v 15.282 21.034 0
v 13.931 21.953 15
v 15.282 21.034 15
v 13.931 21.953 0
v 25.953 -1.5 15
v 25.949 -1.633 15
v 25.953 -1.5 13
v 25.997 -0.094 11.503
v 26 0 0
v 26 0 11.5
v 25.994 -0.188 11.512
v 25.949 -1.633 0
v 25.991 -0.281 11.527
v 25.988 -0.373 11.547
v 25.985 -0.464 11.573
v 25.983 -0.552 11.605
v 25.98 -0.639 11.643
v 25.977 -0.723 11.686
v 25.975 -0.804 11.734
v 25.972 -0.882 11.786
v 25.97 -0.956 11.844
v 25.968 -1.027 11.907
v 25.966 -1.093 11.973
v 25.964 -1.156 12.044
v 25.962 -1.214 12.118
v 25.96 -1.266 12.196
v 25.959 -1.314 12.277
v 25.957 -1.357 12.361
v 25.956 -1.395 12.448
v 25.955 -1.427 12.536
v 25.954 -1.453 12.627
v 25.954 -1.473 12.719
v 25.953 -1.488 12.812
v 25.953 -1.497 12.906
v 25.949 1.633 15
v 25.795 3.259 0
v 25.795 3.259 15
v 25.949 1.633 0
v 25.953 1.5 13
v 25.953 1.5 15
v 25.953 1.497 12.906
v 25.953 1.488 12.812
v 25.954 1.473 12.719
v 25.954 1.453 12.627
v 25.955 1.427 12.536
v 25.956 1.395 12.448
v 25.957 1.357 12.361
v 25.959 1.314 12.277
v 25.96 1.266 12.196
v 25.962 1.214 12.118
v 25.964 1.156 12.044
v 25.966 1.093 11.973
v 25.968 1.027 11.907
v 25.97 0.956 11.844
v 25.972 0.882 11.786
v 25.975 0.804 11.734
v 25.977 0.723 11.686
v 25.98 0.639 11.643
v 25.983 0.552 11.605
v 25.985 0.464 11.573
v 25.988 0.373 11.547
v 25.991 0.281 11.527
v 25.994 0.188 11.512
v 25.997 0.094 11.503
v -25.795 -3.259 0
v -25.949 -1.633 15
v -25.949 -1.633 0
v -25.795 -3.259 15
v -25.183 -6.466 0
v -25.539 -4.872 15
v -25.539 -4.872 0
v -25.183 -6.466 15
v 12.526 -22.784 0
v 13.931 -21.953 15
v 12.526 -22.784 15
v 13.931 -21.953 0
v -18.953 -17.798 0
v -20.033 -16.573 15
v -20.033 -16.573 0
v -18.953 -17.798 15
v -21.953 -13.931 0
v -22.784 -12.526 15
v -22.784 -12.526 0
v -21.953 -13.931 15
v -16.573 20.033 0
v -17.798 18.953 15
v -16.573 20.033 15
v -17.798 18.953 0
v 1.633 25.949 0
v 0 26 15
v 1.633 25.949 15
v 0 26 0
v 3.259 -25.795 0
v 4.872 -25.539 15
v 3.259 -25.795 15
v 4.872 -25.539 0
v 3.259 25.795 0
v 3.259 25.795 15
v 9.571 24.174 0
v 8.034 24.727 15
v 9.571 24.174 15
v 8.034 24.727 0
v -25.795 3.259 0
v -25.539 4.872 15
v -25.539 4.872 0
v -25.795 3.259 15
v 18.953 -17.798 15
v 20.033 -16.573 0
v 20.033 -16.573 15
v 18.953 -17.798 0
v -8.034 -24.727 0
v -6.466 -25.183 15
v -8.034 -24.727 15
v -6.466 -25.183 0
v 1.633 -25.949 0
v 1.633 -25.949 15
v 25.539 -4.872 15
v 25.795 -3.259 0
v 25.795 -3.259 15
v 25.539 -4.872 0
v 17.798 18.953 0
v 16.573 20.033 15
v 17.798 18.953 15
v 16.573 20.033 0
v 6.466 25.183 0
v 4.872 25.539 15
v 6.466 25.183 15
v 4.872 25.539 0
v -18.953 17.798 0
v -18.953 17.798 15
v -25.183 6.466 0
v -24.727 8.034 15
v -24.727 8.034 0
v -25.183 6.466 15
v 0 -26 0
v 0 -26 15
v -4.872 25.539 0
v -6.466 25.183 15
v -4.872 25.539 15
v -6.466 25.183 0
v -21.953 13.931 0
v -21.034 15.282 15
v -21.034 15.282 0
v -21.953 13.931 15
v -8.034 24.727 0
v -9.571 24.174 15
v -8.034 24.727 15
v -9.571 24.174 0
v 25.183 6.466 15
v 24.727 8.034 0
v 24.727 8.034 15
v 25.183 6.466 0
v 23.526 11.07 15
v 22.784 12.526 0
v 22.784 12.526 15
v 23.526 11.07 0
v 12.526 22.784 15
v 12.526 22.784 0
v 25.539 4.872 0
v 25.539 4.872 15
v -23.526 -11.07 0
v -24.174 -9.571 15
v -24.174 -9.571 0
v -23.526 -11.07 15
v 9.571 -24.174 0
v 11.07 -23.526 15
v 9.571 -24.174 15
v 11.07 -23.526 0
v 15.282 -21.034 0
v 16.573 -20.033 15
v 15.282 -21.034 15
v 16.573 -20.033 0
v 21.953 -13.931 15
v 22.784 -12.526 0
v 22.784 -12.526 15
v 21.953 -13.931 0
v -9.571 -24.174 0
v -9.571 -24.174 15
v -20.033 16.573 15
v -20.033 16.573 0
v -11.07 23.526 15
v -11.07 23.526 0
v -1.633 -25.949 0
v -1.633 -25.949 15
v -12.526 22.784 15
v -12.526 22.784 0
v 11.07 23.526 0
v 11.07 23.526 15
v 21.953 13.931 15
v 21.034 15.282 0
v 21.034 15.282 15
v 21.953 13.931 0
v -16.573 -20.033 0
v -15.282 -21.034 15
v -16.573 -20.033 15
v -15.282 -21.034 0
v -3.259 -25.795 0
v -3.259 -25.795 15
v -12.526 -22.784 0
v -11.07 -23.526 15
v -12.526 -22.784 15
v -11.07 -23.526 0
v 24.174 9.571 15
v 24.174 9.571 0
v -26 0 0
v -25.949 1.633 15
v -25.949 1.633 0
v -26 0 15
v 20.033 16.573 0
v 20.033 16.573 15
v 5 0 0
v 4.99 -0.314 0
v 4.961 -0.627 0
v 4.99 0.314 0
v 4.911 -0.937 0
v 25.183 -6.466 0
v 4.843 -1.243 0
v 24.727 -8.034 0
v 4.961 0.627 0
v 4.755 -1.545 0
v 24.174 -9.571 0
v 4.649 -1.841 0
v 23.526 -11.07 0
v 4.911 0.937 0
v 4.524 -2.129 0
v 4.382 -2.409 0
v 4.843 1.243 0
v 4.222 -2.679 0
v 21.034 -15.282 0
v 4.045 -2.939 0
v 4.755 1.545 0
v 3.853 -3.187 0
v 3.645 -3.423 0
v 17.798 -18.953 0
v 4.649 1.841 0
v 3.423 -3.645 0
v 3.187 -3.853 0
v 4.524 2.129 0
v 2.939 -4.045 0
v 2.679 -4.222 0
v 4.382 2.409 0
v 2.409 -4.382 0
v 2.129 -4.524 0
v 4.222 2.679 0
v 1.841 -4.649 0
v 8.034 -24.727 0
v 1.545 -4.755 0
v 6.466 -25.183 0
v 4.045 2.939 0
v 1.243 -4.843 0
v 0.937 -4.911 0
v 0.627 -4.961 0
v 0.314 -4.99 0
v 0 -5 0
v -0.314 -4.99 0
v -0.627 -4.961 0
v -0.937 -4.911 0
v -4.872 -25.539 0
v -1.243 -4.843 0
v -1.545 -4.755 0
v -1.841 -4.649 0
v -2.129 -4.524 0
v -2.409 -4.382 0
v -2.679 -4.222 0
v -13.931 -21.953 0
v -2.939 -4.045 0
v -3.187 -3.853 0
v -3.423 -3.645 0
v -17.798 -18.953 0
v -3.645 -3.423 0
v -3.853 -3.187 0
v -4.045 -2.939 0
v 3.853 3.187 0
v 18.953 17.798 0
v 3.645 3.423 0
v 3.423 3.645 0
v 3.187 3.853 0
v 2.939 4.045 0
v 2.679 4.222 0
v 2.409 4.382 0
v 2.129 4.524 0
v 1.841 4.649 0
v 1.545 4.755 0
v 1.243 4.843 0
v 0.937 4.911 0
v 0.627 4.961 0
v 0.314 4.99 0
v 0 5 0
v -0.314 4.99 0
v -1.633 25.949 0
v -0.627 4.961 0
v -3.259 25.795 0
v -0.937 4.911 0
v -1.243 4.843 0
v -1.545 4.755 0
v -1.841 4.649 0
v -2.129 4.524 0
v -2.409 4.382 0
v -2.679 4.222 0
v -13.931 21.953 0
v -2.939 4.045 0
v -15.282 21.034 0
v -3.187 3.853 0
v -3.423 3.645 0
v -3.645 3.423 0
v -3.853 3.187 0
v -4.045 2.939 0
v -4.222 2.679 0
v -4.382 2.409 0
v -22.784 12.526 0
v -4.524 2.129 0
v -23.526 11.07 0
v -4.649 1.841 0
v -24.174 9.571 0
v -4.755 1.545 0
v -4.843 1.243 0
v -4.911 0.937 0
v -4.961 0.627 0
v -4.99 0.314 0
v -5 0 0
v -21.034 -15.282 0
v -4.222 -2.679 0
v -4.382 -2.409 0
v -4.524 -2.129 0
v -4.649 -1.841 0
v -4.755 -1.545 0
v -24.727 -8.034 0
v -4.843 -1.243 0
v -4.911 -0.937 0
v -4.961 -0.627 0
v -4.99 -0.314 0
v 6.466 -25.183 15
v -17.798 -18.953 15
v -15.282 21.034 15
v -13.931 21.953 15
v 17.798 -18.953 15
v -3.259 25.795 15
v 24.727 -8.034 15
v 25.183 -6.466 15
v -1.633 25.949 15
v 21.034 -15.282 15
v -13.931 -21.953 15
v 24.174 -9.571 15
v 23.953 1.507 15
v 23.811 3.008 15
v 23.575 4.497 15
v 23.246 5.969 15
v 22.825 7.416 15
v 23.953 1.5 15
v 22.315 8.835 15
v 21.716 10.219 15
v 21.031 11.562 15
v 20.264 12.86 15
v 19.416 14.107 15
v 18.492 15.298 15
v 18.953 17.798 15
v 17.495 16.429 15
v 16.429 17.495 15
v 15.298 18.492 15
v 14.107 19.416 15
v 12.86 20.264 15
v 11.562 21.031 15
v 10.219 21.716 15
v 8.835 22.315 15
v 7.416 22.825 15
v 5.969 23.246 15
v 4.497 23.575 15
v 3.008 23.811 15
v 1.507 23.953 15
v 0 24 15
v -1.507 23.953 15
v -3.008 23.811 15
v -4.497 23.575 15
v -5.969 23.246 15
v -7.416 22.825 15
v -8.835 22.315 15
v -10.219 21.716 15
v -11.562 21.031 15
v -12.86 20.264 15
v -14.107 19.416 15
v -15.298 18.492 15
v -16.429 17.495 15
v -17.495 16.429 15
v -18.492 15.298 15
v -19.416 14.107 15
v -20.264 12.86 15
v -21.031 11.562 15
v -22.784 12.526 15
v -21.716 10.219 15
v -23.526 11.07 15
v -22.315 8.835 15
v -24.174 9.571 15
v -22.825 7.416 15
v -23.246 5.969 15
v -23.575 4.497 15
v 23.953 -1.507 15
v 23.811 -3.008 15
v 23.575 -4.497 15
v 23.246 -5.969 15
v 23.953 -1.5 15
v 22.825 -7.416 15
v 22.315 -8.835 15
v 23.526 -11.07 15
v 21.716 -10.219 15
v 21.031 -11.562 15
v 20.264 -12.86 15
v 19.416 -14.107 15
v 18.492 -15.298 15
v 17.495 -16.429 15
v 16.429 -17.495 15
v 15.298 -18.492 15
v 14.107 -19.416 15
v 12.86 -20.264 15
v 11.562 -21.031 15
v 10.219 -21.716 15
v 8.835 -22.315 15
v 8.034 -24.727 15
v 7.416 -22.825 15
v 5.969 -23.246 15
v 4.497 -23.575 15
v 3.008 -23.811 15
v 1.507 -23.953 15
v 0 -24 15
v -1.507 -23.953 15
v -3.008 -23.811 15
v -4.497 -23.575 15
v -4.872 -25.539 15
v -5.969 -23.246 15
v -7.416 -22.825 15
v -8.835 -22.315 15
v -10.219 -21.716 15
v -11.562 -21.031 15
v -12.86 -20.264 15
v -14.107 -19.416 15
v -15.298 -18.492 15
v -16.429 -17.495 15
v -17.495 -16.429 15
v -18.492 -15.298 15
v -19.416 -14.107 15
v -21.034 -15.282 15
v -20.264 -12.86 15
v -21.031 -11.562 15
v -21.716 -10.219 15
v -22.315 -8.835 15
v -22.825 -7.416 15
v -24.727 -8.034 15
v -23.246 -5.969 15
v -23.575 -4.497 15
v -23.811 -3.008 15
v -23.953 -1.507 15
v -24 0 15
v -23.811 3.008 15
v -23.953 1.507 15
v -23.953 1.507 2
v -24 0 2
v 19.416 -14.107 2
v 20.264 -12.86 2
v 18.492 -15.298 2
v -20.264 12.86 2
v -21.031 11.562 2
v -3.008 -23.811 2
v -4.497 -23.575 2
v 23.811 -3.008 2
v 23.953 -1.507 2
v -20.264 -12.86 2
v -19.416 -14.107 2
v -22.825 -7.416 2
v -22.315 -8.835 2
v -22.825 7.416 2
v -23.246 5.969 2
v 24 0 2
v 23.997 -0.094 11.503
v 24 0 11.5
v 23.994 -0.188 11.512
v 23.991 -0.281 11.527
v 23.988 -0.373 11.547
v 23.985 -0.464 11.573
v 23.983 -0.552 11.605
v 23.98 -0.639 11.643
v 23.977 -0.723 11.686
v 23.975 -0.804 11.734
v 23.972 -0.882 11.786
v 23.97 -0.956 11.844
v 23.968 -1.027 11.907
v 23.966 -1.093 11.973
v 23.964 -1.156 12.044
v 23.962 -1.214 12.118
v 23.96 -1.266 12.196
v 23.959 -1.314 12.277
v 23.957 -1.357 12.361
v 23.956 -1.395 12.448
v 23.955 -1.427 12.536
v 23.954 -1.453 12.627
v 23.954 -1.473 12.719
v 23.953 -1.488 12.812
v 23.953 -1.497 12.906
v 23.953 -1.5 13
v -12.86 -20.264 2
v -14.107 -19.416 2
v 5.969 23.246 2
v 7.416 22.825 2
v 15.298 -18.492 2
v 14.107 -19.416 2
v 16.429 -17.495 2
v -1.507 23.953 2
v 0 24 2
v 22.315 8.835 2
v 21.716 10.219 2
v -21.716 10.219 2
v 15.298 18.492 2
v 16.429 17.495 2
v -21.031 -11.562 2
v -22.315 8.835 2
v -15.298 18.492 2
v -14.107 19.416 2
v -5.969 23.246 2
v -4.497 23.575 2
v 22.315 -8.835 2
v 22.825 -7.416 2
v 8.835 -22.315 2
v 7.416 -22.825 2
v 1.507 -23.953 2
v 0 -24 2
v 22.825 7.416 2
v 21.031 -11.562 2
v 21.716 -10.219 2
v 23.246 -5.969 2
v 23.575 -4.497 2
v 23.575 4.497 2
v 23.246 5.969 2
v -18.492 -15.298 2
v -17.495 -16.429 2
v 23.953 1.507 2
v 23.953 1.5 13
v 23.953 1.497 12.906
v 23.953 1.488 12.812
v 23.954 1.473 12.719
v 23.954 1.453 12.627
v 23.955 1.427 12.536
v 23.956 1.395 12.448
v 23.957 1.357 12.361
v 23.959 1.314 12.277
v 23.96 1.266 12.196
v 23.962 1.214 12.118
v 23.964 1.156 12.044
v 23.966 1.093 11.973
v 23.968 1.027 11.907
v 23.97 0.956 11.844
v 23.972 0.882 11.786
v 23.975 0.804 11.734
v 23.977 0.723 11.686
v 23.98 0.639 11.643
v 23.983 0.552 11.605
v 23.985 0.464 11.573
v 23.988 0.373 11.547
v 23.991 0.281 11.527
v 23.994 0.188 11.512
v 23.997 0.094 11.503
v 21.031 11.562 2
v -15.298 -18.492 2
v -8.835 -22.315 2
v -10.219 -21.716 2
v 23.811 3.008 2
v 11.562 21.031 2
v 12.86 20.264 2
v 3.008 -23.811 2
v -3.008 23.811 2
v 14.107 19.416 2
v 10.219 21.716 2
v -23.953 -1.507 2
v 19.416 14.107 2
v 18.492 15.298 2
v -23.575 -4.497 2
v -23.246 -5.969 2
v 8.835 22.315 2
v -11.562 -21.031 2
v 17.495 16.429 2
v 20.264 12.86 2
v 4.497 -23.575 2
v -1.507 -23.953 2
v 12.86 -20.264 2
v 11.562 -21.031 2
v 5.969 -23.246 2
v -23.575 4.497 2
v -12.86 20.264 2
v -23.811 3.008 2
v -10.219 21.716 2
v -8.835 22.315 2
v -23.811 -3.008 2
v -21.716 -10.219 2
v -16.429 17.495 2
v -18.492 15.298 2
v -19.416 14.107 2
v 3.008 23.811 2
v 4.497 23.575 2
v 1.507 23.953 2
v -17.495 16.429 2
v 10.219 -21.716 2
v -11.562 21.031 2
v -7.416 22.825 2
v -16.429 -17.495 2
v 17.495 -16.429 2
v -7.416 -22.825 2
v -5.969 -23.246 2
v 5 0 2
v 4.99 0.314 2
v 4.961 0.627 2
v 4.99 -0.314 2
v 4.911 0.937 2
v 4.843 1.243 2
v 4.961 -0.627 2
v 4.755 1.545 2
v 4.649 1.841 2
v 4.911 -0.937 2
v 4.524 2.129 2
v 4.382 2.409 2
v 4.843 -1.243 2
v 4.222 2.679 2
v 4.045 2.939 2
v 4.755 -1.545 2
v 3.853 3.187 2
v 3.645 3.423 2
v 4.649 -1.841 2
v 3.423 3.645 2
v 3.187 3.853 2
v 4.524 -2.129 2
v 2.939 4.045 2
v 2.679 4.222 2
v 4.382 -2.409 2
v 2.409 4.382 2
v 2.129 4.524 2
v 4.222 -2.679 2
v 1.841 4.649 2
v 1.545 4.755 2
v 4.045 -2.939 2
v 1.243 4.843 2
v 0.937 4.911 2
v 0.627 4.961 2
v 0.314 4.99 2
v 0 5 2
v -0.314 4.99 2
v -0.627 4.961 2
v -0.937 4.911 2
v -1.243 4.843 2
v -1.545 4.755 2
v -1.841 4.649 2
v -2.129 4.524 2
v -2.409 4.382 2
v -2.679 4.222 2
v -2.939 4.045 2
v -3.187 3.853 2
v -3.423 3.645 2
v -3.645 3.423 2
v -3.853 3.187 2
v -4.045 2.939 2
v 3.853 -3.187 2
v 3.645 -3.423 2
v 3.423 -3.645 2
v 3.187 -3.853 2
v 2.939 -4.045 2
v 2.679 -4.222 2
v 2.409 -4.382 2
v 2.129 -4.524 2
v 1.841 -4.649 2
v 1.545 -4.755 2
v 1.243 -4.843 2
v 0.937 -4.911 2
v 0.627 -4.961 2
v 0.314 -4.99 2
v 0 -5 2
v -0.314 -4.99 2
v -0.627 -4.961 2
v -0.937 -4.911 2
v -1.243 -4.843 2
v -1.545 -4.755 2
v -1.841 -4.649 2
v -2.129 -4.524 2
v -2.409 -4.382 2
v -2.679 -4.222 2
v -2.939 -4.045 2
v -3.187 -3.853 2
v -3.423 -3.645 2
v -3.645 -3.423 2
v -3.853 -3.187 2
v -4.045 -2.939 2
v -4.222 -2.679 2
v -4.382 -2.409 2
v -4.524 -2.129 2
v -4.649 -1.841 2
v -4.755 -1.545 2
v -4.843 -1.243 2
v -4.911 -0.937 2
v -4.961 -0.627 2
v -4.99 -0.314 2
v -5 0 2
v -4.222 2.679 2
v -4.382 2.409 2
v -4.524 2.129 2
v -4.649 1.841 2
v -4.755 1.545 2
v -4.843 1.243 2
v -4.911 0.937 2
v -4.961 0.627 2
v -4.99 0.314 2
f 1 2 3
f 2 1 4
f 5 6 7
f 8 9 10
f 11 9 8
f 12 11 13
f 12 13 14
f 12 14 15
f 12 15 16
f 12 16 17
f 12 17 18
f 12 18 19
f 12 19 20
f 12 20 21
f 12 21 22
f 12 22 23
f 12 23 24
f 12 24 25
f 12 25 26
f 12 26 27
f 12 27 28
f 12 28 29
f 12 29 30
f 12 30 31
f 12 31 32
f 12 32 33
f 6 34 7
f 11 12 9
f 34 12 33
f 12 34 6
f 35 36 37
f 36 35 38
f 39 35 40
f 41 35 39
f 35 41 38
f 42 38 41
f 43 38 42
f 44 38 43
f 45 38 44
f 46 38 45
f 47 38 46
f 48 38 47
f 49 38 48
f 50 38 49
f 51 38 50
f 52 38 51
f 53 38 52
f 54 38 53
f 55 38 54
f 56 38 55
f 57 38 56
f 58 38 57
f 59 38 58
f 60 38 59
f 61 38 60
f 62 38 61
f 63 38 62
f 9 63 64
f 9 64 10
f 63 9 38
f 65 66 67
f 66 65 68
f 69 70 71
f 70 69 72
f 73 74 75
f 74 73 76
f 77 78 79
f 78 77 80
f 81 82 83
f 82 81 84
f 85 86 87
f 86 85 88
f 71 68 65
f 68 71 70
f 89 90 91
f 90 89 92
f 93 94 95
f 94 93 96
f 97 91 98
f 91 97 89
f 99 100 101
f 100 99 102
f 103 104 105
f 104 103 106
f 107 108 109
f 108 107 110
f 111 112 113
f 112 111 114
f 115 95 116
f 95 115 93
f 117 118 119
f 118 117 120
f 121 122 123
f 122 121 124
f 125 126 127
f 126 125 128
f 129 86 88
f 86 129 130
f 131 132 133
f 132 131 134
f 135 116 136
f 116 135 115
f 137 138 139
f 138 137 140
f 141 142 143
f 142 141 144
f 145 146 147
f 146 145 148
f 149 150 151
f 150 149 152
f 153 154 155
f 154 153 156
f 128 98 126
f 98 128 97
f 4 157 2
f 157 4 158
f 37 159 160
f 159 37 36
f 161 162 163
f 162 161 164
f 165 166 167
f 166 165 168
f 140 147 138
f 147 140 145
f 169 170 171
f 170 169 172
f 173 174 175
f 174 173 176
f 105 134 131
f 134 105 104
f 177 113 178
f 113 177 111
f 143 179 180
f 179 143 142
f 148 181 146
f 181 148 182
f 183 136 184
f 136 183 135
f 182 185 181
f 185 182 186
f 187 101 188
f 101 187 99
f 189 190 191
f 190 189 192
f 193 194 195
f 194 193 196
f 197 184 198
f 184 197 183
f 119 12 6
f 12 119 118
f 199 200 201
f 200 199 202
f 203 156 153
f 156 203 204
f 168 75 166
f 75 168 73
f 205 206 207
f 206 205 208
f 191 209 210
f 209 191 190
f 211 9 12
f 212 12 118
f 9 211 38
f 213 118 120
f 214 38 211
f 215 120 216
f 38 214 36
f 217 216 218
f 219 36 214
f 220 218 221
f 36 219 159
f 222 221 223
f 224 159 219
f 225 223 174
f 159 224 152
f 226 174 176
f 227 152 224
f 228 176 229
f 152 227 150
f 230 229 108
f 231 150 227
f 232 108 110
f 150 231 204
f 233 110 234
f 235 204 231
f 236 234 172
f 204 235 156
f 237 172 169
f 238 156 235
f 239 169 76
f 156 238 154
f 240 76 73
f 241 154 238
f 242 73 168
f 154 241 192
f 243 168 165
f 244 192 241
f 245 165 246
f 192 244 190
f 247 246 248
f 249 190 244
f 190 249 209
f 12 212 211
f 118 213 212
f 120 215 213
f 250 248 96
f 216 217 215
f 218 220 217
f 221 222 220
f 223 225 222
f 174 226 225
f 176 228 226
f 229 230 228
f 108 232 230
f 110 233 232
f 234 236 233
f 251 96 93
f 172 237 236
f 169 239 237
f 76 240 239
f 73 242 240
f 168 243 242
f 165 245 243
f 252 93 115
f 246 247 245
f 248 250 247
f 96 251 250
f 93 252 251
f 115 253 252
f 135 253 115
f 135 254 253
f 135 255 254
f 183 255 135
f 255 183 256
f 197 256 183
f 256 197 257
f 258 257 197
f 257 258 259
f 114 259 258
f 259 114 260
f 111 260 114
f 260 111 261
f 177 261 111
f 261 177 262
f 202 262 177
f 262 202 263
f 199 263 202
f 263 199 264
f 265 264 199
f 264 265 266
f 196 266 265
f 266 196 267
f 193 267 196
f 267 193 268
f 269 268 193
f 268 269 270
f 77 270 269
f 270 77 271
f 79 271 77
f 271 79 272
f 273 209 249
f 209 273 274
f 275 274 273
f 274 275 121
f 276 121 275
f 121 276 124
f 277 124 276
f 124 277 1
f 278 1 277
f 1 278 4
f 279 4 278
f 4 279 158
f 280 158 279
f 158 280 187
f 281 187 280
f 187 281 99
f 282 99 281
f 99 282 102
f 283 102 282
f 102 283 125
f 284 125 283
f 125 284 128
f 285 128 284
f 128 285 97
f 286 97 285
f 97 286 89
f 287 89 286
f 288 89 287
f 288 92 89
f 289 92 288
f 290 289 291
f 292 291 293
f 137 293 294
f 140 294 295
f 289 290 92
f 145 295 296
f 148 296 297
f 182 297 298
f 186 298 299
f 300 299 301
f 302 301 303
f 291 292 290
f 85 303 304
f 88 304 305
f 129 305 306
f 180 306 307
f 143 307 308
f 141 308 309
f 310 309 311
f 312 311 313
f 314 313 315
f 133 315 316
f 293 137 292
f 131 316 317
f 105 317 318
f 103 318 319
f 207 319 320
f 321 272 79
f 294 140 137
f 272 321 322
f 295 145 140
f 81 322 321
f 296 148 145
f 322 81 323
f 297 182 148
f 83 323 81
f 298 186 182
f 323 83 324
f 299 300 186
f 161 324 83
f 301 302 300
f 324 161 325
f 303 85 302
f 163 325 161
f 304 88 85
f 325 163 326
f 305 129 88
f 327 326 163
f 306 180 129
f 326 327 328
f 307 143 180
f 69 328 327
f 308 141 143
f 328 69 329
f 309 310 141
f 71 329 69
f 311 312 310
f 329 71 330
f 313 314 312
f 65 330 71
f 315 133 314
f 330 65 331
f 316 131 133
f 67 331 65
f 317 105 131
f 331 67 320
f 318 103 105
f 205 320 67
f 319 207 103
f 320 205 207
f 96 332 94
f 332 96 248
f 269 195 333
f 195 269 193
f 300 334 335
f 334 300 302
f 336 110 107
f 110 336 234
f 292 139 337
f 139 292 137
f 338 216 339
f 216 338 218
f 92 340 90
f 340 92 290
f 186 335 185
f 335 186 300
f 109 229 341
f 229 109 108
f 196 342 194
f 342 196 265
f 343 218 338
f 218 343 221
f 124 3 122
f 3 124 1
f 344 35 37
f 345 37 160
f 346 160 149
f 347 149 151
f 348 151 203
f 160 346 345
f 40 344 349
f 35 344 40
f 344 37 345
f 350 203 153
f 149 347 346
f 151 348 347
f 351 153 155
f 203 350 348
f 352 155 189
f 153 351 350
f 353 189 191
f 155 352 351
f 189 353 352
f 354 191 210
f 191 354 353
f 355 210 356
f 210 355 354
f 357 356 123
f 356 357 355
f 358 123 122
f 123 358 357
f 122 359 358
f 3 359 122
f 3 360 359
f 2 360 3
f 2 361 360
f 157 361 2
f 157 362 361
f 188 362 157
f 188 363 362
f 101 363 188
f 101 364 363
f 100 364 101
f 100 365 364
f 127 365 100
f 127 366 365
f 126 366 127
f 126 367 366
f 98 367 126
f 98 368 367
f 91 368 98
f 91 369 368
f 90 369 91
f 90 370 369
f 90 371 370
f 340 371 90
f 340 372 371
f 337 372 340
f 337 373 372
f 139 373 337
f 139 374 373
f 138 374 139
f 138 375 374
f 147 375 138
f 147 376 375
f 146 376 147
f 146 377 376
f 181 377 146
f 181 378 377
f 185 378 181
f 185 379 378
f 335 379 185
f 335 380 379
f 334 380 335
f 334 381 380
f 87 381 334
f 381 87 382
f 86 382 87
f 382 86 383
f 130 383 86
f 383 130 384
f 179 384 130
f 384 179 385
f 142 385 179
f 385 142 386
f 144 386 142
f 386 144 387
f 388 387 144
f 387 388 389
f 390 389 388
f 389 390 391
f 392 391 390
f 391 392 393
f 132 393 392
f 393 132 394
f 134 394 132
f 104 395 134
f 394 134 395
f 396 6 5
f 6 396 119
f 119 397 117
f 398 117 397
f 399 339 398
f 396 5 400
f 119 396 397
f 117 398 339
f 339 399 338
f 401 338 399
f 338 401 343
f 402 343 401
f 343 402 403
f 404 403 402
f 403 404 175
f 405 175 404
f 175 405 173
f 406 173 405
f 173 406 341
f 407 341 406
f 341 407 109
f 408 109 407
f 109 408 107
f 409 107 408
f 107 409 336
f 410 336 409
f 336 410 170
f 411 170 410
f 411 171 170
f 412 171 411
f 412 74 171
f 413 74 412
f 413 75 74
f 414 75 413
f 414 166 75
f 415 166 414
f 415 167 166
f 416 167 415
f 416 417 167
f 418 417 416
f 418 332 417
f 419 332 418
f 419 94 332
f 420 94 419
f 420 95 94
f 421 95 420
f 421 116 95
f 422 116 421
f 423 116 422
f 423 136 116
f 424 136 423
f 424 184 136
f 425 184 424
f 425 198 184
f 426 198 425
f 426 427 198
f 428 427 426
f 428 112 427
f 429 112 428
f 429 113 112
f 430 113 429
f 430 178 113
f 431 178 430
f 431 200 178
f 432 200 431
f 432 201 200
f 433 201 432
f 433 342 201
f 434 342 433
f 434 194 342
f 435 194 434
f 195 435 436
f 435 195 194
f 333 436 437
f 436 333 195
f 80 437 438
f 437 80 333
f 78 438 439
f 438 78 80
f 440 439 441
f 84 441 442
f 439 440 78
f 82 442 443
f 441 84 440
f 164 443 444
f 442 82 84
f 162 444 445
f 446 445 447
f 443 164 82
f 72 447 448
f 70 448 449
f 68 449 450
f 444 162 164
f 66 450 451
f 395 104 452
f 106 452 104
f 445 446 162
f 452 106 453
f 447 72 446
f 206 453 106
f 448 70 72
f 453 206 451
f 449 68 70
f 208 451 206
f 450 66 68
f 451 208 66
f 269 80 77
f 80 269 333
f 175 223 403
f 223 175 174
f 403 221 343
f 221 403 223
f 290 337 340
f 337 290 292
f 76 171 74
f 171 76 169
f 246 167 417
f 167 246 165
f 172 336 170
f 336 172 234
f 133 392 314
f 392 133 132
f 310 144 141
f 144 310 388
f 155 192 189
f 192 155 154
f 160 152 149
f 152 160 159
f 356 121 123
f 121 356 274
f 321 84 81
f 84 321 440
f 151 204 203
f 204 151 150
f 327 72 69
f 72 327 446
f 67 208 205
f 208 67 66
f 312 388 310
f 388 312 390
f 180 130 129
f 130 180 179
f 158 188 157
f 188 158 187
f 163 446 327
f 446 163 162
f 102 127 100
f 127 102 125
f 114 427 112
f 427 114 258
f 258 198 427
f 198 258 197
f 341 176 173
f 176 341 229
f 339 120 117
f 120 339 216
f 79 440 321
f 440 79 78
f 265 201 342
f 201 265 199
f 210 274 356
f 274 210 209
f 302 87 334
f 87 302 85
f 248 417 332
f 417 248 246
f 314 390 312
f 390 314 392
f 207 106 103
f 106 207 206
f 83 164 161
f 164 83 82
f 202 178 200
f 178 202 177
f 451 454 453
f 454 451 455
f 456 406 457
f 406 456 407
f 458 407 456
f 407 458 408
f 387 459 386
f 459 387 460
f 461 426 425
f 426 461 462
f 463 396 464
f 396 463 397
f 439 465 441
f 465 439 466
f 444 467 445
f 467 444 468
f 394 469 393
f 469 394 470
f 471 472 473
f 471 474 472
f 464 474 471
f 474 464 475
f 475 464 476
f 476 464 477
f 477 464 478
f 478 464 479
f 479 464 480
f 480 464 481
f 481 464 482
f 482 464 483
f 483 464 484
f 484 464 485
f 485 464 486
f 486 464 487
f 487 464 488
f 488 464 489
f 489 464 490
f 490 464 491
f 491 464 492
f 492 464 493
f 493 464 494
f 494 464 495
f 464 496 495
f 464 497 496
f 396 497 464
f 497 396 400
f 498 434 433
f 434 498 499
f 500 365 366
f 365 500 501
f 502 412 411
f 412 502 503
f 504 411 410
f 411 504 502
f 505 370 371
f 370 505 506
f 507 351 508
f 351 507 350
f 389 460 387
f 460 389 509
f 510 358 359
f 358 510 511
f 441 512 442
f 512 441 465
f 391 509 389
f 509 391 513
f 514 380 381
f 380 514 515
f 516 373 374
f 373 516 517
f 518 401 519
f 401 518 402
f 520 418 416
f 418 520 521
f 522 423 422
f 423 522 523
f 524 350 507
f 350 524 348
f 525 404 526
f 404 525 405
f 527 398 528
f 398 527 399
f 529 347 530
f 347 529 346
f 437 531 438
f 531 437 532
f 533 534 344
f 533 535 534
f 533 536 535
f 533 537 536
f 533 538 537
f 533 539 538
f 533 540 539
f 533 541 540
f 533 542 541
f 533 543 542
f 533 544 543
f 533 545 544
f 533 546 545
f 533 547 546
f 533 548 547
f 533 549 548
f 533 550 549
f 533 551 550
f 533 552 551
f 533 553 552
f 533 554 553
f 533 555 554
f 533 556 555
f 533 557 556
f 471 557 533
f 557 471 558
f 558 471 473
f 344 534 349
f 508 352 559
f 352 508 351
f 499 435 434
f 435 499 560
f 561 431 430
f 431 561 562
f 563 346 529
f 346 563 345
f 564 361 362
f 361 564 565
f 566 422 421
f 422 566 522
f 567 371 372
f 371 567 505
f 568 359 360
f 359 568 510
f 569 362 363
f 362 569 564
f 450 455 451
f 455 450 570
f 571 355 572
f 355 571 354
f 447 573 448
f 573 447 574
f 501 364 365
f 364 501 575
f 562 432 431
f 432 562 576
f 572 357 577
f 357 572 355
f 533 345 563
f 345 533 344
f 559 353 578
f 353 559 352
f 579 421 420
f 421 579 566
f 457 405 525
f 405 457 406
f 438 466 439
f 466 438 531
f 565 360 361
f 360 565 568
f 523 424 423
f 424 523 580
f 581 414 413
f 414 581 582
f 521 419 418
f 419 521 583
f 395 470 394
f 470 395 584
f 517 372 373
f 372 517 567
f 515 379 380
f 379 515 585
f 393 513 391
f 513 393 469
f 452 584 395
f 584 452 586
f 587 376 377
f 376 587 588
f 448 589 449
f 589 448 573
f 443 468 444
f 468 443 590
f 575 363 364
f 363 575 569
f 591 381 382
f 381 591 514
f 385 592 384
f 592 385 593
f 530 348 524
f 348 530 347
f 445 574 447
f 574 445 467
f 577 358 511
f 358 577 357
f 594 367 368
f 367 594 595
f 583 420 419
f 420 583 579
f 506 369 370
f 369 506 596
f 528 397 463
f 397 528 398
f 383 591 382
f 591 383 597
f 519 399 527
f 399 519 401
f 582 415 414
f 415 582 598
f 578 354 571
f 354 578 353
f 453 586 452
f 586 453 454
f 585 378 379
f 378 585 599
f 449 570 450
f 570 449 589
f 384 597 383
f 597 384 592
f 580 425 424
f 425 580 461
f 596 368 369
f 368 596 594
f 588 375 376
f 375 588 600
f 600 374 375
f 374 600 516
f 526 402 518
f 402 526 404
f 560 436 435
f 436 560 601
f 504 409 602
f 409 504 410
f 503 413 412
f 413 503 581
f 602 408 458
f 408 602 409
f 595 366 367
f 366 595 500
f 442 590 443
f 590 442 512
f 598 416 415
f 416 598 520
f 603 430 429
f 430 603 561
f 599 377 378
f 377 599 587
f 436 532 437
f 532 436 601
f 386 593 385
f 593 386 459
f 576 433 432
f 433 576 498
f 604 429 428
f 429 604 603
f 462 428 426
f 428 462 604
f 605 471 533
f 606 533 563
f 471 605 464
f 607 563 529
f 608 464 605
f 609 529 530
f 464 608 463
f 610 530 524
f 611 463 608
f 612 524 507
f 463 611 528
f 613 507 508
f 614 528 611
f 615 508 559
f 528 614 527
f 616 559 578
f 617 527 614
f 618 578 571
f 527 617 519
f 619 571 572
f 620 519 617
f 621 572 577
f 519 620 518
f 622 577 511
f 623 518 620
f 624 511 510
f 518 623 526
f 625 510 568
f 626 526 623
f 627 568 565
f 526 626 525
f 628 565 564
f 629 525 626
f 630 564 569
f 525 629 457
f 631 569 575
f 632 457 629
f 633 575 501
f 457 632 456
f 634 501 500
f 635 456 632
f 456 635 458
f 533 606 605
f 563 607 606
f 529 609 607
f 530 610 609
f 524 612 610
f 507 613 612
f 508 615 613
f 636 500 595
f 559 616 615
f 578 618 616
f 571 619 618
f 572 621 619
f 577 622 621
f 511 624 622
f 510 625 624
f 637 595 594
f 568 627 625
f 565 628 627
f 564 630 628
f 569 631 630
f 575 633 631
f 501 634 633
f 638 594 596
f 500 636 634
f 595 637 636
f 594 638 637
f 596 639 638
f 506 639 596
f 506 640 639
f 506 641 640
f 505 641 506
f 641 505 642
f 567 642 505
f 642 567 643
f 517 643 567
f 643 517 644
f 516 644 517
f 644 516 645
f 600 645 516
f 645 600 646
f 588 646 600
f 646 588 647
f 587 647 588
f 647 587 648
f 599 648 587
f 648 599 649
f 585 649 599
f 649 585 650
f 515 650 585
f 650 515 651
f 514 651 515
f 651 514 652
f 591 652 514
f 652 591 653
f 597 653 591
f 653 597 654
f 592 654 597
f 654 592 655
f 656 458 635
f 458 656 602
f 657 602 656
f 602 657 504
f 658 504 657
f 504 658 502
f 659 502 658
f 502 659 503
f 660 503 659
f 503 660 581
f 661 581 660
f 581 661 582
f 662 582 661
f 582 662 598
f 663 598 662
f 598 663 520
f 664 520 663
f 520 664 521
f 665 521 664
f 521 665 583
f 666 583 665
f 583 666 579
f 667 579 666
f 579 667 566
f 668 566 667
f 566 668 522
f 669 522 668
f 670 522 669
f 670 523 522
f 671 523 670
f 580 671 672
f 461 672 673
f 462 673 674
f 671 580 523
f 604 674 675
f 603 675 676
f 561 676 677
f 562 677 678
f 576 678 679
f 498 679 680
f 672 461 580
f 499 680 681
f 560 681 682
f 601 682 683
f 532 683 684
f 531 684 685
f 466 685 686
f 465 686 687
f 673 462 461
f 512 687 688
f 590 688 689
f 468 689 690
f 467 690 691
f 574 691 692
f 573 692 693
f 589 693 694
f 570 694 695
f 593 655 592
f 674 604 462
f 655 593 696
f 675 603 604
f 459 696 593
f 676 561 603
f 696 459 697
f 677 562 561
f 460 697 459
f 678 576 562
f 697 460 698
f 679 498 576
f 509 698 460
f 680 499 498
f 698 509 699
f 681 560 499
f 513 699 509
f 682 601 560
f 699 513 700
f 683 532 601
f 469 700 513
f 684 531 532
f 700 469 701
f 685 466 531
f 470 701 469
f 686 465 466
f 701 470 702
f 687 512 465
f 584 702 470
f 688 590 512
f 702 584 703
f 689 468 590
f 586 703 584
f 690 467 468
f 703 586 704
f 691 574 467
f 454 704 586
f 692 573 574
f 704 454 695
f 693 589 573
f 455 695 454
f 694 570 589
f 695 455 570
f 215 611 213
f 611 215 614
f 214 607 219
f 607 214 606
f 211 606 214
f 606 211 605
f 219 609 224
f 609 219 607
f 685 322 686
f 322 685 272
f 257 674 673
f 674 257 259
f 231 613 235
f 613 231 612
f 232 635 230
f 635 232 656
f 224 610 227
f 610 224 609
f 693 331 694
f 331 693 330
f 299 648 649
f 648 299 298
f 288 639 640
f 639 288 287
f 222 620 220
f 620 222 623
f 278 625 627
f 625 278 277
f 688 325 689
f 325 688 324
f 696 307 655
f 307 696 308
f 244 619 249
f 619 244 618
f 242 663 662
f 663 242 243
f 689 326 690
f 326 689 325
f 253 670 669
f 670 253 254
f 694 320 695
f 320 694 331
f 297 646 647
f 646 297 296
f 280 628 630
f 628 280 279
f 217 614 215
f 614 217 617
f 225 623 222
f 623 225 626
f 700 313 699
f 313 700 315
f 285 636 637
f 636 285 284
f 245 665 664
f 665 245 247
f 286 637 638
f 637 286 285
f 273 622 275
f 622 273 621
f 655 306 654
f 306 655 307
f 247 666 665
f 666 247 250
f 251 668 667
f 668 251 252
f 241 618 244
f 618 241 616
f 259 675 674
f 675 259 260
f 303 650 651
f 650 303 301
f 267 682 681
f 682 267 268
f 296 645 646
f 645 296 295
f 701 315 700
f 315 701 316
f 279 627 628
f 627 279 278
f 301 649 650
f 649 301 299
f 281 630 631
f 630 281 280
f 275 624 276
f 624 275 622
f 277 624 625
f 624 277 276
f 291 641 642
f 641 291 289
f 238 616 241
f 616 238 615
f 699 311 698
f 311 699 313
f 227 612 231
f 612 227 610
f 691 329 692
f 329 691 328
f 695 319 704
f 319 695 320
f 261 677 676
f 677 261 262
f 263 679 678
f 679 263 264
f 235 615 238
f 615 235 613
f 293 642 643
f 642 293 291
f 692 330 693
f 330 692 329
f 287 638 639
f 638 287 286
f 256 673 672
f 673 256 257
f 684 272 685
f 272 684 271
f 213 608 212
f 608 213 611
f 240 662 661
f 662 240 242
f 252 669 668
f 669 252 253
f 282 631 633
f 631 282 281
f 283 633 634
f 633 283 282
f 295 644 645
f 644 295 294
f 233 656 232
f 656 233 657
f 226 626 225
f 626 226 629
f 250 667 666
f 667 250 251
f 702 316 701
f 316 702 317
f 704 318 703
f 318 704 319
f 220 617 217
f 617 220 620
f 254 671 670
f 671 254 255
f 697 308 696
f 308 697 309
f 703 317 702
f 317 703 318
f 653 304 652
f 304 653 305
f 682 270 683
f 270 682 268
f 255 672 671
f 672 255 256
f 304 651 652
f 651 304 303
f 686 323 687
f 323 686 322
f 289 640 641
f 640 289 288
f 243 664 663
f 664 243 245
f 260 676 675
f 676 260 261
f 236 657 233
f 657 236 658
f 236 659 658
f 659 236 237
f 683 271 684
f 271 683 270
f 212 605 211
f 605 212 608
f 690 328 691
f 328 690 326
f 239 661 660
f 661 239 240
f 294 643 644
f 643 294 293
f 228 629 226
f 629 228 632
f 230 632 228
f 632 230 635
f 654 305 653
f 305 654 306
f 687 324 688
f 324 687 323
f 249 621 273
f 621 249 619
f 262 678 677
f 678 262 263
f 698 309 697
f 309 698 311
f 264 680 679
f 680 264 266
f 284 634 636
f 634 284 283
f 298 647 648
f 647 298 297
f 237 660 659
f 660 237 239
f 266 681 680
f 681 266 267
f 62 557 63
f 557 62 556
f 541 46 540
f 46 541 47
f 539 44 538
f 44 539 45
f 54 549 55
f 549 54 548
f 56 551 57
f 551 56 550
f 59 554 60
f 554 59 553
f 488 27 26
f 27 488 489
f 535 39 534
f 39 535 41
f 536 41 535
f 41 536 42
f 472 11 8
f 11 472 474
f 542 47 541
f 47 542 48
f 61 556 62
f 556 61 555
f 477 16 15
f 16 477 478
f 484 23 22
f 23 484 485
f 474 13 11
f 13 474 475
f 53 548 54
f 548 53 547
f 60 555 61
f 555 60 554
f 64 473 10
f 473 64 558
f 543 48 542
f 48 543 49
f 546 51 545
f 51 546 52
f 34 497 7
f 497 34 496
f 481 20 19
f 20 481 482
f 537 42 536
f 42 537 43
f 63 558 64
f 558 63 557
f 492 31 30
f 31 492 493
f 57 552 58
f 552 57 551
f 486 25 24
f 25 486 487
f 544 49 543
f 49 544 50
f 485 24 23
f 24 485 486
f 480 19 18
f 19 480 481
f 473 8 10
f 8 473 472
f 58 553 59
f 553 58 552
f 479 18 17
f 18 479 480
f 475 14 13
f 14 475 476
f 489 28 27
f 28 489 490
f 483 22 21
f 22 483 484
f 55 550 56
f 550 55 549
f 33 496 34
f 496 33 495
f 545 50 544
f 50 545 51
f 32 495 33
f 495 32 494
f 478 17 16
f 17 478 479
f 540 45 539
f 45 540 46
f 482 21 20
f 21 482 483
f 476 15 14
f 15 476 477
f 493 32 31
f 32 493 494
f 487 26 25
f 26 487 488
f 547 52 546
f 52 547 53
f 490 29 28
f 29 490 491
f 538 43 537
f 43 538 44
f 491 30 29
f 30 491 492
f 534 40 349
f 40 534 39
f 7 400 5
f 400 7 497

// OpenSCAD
$fn = 100;

difference(){
    
    cylinder( d = 52, h = 15);
    
    translate([ 0, 0, 2])
    cylinder( d = 48, h = 13.1);
    
    translate([ 0, 0, -3])
    cylinder( d = 10, h = 6);
    
    rotate([ 0, 90, 0])
    translate([ -13, 0, 20])
    cylinder( d = 3, h = 10);
    
    translate([ 22, -1.5, 13])
    cube([ 10, 3, 10]);
};
